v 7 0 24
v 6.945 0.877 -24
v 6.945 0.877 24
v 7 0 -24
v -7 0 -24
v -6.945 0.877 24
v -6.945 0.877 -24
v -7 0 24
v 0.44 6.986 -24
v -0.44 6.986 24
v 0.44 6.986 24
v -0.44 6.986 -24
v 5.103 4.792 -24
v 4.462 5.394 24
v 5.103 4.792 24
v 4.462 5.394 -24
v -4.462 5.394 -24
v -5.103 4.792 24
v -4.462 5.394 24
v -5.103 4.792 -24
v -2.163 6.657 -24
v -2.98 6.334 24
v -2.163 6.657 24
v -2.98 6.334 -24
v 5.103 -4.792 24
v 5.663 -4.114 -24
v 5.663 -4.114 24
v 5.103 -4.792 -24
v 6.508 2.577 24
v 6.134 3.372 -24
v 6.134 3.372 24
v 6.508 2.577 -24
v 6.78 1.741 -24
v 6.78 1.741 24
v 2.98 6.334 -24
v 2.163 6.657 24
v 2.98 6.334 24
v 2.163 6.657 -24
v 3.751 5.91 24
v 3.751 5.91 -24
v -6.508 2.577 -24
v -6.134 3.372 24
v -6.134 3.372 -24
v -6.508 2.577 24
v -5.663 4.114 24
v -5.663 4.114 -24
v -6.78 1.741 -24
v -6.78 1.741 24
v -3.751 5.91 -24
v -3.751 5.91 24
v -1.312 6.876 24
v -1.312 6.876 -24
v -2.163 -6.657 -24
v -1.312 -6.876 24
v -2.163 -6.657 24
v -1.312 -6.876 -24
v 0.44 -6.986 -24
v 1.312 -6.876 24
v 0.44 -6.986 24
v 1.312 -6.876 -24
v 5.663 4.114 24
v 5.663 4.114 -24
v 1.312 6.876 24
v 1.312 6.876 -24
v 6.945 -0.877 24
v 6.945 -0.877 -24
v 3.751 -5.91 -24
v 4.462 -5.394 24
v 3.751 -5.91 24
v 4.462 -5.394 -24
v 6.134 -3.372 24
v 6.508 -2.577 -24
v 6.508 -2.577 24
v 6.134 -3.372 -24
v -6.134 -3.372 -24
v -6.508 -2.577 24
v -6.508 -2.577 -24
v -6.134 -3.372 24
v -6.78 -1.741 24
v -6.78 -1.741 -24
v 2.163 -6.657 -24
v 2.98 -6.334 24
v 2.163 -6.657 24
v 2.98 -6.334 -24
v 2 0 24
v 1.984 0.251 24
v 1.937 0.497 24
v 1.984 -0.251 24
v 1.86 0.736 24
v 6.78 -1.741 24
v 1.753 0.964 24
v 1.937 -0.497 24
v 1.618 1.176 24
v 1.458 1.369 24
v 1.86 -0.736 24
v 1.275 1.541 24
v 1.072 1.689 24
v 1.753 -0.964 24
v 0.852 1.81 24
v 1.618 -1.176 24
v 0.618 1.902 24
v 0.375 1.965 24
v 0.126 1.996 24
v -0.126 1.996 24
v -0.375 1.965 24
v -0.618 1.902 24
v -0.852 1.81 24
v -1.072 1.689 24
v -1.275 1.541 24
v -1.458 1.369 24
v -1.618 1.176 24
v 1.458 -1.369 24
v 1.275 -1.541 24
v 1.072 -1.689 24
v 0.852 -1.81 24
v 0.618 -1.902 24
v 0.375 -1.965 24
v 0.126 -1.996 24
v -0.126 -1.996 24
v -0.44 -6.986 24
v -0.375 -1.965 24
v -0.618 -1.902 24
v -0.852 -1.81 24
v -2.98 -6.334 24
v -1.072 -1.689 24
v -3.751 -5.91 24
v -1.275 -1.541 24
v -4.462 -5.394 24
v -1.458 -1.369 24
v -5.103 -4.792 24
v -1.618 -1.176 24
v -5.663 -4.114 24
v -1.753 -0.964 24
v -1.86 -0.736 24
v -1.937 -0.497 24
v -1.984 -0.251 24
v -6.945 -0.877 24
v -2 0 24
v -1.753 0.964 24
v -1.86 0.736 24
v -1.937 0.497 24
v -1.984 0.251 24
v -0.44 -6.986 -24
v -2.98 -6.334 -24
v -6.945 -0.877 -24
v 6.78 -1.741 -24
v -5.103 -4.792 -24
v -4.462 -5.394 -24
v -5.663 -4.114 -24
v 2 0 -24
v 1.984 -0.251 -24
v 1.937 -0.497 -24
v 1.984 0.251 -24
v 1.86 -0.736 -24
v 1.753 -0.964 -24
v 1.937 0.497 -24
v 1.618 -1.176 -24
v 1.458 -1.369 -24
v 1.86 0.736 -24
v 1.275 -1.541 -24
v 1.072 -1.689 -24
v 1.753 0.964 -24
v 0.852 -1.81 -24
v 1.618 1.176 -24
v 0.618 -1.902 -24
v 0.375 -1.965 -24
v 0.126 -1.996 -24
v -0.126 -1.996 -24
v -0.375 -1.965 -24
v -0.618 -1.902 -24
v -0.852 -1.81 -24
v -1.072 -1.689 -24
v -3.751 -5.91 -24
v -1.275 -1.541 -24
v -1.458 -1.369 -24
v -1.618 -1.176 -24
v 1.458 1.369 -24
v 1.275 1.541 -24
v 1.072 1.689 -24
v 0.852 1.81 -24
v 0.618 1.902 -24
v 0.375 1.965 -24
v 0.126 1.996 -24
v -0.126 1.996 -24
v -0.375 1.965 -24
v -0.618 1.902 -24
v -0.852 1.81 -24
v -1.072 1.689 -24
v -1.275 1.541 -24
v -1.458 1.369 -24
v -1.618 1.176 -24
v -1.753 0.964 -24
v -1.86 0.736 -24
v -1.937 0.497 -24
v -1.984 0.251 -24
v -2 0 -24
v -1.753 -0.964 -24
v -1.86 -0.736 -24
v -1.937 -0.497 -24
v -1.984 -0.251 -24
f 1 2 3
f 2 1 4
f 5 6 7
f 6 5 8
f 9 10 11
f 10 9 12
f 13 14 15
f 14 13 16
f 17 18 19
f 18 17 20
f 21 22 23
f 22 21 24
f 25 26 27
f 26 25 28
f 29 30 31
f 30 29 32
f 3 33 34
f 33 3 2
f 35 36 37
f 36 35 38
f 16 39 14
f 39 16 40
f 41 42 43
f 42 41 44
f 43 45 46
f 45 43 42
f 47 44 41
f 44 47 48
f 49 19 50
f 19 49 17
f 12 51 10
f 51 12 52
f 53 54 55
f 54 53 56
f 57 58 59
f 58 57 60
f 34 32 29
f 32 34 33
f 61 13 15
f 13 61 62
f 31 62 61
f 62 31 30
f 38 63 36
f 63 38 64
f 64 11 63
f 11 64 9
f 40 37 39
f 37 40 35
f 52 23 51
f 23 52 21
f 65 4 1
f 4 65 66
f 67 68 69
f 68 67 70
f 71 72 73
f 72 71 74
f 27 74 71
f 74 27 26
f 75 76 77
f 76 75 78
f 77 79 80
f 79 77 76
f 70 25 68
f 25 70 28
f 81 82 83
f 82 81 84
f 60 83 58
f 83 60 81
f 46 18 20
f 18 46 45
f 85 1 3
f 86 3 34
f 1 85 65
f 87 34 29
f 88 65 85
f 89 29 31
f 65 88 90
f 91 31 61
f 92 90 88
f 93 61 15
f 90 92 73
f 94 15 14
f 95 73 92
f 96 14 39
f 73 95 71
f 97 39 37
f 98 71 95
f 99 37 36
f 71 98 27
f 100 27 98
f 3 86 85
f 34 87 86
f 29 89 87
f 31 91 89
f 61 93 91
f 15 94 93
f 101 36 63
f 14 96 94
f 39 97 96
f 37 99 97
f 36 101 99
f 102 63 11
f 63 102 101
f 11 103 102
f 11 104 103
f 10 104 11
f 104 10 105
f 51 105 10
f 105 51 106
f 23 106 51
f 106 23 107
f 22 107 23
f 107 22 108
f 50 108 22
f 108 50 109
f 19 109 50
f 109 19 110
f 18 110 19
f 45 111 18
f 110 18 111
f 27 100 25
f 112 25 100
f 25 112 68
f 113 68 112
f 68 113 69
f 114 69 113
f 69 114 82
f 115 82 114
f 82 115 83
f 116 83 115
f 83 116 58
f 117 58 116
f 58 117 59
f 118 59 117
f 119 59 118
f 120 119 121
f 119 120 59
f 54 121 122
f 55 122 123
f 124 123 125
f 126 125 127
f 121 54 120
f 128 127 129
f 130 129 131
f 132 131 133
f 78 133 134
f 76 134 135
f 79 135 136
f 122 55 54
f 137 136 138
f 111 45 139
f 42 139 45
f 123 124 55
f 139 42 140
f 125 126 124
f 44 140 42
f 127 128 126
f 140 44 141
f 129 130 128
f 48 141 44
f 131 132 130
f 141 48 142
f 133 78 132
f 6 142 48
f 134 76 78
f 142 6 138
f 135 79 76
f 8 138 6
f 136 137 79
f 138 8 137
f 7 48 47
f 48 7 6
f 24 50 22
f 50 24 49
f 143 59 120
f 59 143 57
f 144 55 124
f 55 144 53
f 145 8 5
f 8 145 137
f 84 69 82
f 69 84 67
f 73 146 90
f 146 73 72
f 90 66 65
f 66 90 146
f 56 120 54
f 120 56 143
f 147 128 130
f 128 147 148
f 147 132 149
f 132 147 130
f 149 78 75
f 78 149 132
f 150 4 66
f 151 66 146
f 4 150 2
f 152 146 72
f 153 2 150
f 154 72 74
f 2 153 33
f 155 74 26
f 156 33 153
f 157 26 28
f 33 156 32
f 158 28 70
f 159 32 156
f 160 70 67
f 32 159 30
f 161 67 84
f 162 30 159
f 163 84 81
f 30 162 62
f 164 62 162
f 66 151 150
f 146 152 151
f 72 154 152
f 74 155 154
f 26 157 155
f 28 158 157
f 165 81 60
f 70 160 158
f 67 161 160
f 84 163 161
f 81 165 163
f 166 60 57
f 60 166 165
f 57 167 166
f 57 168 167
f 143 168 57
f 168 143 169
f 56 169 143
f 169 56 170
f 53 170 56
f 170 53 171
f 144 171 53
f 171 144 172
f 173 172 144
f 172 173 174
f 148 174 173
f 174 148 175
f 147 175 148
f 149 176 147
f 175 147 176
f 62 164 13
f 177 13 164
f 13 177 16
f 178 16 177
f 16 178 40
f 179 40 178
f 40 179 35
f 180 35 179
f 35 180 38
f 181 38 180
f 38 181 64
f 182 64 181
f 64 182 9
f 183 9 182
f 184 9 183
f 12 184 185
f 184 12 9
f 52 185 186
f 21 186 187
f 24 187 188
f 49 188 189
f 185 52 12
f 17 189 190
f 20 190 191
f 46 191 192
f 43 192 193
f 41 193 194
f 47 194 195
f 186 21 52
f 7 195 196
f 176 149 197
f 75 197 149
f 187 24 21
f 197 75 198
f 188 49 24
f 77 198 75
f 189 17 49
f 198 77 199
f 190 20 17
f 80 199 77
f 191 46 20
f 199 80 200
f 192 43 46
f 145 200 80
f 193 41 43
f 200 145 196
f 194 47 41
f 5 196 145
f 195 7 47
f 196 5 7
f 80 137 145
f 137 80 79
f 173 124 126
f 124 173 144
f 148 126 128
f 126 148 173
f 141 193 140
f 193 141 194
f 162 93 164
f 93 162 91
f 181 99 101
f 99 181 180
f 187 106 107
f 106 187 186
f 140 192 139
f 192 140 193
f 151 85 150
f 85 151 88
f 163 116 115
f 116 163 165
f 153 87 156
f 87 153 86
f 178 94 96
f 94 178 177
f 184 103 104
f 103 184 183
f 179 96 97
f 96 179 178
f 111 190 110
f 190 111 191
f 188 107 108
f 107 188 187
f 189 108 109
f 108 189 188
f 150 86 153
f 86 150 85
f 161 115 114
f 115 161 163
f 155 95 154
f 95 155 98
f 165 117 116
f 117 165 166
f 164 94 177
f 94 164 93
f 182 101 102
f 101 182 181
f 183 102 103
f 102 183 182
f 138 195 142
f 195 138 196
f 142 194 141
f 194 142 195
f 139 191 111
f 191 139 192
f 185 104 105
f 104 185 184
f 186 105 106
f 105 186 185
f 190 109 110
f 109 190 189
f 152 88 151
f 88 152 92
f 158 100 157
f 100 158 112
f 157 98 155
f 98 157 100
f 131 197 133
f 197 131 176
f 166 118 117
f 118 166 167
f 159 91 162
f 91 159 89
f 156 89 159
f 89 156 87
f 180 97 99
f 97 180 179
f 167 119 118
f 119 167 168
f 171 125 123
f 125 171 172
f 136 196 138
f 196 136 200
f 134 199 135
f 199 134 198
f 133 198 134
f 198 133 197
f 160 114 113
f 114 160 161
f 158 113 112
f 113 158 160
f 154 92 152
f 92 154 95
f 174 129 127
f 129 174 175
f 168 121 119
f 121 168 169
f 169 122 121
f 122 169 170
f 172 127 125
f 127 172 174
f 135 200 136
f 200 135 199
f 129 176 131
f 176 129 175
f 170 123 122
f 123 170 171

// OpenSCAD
$fn = 50;


difference() {
	union() {
		translate(v = [0, 0, -24.0000000000]) {
			cylinder(h = 48, r = 7.0000000000);
		}
	}
	union() {
		translate(v = [0, 0, -100.0000000000]) {
			cylinder(h = 200, r = 2.0000000000);
		}
	}
}
